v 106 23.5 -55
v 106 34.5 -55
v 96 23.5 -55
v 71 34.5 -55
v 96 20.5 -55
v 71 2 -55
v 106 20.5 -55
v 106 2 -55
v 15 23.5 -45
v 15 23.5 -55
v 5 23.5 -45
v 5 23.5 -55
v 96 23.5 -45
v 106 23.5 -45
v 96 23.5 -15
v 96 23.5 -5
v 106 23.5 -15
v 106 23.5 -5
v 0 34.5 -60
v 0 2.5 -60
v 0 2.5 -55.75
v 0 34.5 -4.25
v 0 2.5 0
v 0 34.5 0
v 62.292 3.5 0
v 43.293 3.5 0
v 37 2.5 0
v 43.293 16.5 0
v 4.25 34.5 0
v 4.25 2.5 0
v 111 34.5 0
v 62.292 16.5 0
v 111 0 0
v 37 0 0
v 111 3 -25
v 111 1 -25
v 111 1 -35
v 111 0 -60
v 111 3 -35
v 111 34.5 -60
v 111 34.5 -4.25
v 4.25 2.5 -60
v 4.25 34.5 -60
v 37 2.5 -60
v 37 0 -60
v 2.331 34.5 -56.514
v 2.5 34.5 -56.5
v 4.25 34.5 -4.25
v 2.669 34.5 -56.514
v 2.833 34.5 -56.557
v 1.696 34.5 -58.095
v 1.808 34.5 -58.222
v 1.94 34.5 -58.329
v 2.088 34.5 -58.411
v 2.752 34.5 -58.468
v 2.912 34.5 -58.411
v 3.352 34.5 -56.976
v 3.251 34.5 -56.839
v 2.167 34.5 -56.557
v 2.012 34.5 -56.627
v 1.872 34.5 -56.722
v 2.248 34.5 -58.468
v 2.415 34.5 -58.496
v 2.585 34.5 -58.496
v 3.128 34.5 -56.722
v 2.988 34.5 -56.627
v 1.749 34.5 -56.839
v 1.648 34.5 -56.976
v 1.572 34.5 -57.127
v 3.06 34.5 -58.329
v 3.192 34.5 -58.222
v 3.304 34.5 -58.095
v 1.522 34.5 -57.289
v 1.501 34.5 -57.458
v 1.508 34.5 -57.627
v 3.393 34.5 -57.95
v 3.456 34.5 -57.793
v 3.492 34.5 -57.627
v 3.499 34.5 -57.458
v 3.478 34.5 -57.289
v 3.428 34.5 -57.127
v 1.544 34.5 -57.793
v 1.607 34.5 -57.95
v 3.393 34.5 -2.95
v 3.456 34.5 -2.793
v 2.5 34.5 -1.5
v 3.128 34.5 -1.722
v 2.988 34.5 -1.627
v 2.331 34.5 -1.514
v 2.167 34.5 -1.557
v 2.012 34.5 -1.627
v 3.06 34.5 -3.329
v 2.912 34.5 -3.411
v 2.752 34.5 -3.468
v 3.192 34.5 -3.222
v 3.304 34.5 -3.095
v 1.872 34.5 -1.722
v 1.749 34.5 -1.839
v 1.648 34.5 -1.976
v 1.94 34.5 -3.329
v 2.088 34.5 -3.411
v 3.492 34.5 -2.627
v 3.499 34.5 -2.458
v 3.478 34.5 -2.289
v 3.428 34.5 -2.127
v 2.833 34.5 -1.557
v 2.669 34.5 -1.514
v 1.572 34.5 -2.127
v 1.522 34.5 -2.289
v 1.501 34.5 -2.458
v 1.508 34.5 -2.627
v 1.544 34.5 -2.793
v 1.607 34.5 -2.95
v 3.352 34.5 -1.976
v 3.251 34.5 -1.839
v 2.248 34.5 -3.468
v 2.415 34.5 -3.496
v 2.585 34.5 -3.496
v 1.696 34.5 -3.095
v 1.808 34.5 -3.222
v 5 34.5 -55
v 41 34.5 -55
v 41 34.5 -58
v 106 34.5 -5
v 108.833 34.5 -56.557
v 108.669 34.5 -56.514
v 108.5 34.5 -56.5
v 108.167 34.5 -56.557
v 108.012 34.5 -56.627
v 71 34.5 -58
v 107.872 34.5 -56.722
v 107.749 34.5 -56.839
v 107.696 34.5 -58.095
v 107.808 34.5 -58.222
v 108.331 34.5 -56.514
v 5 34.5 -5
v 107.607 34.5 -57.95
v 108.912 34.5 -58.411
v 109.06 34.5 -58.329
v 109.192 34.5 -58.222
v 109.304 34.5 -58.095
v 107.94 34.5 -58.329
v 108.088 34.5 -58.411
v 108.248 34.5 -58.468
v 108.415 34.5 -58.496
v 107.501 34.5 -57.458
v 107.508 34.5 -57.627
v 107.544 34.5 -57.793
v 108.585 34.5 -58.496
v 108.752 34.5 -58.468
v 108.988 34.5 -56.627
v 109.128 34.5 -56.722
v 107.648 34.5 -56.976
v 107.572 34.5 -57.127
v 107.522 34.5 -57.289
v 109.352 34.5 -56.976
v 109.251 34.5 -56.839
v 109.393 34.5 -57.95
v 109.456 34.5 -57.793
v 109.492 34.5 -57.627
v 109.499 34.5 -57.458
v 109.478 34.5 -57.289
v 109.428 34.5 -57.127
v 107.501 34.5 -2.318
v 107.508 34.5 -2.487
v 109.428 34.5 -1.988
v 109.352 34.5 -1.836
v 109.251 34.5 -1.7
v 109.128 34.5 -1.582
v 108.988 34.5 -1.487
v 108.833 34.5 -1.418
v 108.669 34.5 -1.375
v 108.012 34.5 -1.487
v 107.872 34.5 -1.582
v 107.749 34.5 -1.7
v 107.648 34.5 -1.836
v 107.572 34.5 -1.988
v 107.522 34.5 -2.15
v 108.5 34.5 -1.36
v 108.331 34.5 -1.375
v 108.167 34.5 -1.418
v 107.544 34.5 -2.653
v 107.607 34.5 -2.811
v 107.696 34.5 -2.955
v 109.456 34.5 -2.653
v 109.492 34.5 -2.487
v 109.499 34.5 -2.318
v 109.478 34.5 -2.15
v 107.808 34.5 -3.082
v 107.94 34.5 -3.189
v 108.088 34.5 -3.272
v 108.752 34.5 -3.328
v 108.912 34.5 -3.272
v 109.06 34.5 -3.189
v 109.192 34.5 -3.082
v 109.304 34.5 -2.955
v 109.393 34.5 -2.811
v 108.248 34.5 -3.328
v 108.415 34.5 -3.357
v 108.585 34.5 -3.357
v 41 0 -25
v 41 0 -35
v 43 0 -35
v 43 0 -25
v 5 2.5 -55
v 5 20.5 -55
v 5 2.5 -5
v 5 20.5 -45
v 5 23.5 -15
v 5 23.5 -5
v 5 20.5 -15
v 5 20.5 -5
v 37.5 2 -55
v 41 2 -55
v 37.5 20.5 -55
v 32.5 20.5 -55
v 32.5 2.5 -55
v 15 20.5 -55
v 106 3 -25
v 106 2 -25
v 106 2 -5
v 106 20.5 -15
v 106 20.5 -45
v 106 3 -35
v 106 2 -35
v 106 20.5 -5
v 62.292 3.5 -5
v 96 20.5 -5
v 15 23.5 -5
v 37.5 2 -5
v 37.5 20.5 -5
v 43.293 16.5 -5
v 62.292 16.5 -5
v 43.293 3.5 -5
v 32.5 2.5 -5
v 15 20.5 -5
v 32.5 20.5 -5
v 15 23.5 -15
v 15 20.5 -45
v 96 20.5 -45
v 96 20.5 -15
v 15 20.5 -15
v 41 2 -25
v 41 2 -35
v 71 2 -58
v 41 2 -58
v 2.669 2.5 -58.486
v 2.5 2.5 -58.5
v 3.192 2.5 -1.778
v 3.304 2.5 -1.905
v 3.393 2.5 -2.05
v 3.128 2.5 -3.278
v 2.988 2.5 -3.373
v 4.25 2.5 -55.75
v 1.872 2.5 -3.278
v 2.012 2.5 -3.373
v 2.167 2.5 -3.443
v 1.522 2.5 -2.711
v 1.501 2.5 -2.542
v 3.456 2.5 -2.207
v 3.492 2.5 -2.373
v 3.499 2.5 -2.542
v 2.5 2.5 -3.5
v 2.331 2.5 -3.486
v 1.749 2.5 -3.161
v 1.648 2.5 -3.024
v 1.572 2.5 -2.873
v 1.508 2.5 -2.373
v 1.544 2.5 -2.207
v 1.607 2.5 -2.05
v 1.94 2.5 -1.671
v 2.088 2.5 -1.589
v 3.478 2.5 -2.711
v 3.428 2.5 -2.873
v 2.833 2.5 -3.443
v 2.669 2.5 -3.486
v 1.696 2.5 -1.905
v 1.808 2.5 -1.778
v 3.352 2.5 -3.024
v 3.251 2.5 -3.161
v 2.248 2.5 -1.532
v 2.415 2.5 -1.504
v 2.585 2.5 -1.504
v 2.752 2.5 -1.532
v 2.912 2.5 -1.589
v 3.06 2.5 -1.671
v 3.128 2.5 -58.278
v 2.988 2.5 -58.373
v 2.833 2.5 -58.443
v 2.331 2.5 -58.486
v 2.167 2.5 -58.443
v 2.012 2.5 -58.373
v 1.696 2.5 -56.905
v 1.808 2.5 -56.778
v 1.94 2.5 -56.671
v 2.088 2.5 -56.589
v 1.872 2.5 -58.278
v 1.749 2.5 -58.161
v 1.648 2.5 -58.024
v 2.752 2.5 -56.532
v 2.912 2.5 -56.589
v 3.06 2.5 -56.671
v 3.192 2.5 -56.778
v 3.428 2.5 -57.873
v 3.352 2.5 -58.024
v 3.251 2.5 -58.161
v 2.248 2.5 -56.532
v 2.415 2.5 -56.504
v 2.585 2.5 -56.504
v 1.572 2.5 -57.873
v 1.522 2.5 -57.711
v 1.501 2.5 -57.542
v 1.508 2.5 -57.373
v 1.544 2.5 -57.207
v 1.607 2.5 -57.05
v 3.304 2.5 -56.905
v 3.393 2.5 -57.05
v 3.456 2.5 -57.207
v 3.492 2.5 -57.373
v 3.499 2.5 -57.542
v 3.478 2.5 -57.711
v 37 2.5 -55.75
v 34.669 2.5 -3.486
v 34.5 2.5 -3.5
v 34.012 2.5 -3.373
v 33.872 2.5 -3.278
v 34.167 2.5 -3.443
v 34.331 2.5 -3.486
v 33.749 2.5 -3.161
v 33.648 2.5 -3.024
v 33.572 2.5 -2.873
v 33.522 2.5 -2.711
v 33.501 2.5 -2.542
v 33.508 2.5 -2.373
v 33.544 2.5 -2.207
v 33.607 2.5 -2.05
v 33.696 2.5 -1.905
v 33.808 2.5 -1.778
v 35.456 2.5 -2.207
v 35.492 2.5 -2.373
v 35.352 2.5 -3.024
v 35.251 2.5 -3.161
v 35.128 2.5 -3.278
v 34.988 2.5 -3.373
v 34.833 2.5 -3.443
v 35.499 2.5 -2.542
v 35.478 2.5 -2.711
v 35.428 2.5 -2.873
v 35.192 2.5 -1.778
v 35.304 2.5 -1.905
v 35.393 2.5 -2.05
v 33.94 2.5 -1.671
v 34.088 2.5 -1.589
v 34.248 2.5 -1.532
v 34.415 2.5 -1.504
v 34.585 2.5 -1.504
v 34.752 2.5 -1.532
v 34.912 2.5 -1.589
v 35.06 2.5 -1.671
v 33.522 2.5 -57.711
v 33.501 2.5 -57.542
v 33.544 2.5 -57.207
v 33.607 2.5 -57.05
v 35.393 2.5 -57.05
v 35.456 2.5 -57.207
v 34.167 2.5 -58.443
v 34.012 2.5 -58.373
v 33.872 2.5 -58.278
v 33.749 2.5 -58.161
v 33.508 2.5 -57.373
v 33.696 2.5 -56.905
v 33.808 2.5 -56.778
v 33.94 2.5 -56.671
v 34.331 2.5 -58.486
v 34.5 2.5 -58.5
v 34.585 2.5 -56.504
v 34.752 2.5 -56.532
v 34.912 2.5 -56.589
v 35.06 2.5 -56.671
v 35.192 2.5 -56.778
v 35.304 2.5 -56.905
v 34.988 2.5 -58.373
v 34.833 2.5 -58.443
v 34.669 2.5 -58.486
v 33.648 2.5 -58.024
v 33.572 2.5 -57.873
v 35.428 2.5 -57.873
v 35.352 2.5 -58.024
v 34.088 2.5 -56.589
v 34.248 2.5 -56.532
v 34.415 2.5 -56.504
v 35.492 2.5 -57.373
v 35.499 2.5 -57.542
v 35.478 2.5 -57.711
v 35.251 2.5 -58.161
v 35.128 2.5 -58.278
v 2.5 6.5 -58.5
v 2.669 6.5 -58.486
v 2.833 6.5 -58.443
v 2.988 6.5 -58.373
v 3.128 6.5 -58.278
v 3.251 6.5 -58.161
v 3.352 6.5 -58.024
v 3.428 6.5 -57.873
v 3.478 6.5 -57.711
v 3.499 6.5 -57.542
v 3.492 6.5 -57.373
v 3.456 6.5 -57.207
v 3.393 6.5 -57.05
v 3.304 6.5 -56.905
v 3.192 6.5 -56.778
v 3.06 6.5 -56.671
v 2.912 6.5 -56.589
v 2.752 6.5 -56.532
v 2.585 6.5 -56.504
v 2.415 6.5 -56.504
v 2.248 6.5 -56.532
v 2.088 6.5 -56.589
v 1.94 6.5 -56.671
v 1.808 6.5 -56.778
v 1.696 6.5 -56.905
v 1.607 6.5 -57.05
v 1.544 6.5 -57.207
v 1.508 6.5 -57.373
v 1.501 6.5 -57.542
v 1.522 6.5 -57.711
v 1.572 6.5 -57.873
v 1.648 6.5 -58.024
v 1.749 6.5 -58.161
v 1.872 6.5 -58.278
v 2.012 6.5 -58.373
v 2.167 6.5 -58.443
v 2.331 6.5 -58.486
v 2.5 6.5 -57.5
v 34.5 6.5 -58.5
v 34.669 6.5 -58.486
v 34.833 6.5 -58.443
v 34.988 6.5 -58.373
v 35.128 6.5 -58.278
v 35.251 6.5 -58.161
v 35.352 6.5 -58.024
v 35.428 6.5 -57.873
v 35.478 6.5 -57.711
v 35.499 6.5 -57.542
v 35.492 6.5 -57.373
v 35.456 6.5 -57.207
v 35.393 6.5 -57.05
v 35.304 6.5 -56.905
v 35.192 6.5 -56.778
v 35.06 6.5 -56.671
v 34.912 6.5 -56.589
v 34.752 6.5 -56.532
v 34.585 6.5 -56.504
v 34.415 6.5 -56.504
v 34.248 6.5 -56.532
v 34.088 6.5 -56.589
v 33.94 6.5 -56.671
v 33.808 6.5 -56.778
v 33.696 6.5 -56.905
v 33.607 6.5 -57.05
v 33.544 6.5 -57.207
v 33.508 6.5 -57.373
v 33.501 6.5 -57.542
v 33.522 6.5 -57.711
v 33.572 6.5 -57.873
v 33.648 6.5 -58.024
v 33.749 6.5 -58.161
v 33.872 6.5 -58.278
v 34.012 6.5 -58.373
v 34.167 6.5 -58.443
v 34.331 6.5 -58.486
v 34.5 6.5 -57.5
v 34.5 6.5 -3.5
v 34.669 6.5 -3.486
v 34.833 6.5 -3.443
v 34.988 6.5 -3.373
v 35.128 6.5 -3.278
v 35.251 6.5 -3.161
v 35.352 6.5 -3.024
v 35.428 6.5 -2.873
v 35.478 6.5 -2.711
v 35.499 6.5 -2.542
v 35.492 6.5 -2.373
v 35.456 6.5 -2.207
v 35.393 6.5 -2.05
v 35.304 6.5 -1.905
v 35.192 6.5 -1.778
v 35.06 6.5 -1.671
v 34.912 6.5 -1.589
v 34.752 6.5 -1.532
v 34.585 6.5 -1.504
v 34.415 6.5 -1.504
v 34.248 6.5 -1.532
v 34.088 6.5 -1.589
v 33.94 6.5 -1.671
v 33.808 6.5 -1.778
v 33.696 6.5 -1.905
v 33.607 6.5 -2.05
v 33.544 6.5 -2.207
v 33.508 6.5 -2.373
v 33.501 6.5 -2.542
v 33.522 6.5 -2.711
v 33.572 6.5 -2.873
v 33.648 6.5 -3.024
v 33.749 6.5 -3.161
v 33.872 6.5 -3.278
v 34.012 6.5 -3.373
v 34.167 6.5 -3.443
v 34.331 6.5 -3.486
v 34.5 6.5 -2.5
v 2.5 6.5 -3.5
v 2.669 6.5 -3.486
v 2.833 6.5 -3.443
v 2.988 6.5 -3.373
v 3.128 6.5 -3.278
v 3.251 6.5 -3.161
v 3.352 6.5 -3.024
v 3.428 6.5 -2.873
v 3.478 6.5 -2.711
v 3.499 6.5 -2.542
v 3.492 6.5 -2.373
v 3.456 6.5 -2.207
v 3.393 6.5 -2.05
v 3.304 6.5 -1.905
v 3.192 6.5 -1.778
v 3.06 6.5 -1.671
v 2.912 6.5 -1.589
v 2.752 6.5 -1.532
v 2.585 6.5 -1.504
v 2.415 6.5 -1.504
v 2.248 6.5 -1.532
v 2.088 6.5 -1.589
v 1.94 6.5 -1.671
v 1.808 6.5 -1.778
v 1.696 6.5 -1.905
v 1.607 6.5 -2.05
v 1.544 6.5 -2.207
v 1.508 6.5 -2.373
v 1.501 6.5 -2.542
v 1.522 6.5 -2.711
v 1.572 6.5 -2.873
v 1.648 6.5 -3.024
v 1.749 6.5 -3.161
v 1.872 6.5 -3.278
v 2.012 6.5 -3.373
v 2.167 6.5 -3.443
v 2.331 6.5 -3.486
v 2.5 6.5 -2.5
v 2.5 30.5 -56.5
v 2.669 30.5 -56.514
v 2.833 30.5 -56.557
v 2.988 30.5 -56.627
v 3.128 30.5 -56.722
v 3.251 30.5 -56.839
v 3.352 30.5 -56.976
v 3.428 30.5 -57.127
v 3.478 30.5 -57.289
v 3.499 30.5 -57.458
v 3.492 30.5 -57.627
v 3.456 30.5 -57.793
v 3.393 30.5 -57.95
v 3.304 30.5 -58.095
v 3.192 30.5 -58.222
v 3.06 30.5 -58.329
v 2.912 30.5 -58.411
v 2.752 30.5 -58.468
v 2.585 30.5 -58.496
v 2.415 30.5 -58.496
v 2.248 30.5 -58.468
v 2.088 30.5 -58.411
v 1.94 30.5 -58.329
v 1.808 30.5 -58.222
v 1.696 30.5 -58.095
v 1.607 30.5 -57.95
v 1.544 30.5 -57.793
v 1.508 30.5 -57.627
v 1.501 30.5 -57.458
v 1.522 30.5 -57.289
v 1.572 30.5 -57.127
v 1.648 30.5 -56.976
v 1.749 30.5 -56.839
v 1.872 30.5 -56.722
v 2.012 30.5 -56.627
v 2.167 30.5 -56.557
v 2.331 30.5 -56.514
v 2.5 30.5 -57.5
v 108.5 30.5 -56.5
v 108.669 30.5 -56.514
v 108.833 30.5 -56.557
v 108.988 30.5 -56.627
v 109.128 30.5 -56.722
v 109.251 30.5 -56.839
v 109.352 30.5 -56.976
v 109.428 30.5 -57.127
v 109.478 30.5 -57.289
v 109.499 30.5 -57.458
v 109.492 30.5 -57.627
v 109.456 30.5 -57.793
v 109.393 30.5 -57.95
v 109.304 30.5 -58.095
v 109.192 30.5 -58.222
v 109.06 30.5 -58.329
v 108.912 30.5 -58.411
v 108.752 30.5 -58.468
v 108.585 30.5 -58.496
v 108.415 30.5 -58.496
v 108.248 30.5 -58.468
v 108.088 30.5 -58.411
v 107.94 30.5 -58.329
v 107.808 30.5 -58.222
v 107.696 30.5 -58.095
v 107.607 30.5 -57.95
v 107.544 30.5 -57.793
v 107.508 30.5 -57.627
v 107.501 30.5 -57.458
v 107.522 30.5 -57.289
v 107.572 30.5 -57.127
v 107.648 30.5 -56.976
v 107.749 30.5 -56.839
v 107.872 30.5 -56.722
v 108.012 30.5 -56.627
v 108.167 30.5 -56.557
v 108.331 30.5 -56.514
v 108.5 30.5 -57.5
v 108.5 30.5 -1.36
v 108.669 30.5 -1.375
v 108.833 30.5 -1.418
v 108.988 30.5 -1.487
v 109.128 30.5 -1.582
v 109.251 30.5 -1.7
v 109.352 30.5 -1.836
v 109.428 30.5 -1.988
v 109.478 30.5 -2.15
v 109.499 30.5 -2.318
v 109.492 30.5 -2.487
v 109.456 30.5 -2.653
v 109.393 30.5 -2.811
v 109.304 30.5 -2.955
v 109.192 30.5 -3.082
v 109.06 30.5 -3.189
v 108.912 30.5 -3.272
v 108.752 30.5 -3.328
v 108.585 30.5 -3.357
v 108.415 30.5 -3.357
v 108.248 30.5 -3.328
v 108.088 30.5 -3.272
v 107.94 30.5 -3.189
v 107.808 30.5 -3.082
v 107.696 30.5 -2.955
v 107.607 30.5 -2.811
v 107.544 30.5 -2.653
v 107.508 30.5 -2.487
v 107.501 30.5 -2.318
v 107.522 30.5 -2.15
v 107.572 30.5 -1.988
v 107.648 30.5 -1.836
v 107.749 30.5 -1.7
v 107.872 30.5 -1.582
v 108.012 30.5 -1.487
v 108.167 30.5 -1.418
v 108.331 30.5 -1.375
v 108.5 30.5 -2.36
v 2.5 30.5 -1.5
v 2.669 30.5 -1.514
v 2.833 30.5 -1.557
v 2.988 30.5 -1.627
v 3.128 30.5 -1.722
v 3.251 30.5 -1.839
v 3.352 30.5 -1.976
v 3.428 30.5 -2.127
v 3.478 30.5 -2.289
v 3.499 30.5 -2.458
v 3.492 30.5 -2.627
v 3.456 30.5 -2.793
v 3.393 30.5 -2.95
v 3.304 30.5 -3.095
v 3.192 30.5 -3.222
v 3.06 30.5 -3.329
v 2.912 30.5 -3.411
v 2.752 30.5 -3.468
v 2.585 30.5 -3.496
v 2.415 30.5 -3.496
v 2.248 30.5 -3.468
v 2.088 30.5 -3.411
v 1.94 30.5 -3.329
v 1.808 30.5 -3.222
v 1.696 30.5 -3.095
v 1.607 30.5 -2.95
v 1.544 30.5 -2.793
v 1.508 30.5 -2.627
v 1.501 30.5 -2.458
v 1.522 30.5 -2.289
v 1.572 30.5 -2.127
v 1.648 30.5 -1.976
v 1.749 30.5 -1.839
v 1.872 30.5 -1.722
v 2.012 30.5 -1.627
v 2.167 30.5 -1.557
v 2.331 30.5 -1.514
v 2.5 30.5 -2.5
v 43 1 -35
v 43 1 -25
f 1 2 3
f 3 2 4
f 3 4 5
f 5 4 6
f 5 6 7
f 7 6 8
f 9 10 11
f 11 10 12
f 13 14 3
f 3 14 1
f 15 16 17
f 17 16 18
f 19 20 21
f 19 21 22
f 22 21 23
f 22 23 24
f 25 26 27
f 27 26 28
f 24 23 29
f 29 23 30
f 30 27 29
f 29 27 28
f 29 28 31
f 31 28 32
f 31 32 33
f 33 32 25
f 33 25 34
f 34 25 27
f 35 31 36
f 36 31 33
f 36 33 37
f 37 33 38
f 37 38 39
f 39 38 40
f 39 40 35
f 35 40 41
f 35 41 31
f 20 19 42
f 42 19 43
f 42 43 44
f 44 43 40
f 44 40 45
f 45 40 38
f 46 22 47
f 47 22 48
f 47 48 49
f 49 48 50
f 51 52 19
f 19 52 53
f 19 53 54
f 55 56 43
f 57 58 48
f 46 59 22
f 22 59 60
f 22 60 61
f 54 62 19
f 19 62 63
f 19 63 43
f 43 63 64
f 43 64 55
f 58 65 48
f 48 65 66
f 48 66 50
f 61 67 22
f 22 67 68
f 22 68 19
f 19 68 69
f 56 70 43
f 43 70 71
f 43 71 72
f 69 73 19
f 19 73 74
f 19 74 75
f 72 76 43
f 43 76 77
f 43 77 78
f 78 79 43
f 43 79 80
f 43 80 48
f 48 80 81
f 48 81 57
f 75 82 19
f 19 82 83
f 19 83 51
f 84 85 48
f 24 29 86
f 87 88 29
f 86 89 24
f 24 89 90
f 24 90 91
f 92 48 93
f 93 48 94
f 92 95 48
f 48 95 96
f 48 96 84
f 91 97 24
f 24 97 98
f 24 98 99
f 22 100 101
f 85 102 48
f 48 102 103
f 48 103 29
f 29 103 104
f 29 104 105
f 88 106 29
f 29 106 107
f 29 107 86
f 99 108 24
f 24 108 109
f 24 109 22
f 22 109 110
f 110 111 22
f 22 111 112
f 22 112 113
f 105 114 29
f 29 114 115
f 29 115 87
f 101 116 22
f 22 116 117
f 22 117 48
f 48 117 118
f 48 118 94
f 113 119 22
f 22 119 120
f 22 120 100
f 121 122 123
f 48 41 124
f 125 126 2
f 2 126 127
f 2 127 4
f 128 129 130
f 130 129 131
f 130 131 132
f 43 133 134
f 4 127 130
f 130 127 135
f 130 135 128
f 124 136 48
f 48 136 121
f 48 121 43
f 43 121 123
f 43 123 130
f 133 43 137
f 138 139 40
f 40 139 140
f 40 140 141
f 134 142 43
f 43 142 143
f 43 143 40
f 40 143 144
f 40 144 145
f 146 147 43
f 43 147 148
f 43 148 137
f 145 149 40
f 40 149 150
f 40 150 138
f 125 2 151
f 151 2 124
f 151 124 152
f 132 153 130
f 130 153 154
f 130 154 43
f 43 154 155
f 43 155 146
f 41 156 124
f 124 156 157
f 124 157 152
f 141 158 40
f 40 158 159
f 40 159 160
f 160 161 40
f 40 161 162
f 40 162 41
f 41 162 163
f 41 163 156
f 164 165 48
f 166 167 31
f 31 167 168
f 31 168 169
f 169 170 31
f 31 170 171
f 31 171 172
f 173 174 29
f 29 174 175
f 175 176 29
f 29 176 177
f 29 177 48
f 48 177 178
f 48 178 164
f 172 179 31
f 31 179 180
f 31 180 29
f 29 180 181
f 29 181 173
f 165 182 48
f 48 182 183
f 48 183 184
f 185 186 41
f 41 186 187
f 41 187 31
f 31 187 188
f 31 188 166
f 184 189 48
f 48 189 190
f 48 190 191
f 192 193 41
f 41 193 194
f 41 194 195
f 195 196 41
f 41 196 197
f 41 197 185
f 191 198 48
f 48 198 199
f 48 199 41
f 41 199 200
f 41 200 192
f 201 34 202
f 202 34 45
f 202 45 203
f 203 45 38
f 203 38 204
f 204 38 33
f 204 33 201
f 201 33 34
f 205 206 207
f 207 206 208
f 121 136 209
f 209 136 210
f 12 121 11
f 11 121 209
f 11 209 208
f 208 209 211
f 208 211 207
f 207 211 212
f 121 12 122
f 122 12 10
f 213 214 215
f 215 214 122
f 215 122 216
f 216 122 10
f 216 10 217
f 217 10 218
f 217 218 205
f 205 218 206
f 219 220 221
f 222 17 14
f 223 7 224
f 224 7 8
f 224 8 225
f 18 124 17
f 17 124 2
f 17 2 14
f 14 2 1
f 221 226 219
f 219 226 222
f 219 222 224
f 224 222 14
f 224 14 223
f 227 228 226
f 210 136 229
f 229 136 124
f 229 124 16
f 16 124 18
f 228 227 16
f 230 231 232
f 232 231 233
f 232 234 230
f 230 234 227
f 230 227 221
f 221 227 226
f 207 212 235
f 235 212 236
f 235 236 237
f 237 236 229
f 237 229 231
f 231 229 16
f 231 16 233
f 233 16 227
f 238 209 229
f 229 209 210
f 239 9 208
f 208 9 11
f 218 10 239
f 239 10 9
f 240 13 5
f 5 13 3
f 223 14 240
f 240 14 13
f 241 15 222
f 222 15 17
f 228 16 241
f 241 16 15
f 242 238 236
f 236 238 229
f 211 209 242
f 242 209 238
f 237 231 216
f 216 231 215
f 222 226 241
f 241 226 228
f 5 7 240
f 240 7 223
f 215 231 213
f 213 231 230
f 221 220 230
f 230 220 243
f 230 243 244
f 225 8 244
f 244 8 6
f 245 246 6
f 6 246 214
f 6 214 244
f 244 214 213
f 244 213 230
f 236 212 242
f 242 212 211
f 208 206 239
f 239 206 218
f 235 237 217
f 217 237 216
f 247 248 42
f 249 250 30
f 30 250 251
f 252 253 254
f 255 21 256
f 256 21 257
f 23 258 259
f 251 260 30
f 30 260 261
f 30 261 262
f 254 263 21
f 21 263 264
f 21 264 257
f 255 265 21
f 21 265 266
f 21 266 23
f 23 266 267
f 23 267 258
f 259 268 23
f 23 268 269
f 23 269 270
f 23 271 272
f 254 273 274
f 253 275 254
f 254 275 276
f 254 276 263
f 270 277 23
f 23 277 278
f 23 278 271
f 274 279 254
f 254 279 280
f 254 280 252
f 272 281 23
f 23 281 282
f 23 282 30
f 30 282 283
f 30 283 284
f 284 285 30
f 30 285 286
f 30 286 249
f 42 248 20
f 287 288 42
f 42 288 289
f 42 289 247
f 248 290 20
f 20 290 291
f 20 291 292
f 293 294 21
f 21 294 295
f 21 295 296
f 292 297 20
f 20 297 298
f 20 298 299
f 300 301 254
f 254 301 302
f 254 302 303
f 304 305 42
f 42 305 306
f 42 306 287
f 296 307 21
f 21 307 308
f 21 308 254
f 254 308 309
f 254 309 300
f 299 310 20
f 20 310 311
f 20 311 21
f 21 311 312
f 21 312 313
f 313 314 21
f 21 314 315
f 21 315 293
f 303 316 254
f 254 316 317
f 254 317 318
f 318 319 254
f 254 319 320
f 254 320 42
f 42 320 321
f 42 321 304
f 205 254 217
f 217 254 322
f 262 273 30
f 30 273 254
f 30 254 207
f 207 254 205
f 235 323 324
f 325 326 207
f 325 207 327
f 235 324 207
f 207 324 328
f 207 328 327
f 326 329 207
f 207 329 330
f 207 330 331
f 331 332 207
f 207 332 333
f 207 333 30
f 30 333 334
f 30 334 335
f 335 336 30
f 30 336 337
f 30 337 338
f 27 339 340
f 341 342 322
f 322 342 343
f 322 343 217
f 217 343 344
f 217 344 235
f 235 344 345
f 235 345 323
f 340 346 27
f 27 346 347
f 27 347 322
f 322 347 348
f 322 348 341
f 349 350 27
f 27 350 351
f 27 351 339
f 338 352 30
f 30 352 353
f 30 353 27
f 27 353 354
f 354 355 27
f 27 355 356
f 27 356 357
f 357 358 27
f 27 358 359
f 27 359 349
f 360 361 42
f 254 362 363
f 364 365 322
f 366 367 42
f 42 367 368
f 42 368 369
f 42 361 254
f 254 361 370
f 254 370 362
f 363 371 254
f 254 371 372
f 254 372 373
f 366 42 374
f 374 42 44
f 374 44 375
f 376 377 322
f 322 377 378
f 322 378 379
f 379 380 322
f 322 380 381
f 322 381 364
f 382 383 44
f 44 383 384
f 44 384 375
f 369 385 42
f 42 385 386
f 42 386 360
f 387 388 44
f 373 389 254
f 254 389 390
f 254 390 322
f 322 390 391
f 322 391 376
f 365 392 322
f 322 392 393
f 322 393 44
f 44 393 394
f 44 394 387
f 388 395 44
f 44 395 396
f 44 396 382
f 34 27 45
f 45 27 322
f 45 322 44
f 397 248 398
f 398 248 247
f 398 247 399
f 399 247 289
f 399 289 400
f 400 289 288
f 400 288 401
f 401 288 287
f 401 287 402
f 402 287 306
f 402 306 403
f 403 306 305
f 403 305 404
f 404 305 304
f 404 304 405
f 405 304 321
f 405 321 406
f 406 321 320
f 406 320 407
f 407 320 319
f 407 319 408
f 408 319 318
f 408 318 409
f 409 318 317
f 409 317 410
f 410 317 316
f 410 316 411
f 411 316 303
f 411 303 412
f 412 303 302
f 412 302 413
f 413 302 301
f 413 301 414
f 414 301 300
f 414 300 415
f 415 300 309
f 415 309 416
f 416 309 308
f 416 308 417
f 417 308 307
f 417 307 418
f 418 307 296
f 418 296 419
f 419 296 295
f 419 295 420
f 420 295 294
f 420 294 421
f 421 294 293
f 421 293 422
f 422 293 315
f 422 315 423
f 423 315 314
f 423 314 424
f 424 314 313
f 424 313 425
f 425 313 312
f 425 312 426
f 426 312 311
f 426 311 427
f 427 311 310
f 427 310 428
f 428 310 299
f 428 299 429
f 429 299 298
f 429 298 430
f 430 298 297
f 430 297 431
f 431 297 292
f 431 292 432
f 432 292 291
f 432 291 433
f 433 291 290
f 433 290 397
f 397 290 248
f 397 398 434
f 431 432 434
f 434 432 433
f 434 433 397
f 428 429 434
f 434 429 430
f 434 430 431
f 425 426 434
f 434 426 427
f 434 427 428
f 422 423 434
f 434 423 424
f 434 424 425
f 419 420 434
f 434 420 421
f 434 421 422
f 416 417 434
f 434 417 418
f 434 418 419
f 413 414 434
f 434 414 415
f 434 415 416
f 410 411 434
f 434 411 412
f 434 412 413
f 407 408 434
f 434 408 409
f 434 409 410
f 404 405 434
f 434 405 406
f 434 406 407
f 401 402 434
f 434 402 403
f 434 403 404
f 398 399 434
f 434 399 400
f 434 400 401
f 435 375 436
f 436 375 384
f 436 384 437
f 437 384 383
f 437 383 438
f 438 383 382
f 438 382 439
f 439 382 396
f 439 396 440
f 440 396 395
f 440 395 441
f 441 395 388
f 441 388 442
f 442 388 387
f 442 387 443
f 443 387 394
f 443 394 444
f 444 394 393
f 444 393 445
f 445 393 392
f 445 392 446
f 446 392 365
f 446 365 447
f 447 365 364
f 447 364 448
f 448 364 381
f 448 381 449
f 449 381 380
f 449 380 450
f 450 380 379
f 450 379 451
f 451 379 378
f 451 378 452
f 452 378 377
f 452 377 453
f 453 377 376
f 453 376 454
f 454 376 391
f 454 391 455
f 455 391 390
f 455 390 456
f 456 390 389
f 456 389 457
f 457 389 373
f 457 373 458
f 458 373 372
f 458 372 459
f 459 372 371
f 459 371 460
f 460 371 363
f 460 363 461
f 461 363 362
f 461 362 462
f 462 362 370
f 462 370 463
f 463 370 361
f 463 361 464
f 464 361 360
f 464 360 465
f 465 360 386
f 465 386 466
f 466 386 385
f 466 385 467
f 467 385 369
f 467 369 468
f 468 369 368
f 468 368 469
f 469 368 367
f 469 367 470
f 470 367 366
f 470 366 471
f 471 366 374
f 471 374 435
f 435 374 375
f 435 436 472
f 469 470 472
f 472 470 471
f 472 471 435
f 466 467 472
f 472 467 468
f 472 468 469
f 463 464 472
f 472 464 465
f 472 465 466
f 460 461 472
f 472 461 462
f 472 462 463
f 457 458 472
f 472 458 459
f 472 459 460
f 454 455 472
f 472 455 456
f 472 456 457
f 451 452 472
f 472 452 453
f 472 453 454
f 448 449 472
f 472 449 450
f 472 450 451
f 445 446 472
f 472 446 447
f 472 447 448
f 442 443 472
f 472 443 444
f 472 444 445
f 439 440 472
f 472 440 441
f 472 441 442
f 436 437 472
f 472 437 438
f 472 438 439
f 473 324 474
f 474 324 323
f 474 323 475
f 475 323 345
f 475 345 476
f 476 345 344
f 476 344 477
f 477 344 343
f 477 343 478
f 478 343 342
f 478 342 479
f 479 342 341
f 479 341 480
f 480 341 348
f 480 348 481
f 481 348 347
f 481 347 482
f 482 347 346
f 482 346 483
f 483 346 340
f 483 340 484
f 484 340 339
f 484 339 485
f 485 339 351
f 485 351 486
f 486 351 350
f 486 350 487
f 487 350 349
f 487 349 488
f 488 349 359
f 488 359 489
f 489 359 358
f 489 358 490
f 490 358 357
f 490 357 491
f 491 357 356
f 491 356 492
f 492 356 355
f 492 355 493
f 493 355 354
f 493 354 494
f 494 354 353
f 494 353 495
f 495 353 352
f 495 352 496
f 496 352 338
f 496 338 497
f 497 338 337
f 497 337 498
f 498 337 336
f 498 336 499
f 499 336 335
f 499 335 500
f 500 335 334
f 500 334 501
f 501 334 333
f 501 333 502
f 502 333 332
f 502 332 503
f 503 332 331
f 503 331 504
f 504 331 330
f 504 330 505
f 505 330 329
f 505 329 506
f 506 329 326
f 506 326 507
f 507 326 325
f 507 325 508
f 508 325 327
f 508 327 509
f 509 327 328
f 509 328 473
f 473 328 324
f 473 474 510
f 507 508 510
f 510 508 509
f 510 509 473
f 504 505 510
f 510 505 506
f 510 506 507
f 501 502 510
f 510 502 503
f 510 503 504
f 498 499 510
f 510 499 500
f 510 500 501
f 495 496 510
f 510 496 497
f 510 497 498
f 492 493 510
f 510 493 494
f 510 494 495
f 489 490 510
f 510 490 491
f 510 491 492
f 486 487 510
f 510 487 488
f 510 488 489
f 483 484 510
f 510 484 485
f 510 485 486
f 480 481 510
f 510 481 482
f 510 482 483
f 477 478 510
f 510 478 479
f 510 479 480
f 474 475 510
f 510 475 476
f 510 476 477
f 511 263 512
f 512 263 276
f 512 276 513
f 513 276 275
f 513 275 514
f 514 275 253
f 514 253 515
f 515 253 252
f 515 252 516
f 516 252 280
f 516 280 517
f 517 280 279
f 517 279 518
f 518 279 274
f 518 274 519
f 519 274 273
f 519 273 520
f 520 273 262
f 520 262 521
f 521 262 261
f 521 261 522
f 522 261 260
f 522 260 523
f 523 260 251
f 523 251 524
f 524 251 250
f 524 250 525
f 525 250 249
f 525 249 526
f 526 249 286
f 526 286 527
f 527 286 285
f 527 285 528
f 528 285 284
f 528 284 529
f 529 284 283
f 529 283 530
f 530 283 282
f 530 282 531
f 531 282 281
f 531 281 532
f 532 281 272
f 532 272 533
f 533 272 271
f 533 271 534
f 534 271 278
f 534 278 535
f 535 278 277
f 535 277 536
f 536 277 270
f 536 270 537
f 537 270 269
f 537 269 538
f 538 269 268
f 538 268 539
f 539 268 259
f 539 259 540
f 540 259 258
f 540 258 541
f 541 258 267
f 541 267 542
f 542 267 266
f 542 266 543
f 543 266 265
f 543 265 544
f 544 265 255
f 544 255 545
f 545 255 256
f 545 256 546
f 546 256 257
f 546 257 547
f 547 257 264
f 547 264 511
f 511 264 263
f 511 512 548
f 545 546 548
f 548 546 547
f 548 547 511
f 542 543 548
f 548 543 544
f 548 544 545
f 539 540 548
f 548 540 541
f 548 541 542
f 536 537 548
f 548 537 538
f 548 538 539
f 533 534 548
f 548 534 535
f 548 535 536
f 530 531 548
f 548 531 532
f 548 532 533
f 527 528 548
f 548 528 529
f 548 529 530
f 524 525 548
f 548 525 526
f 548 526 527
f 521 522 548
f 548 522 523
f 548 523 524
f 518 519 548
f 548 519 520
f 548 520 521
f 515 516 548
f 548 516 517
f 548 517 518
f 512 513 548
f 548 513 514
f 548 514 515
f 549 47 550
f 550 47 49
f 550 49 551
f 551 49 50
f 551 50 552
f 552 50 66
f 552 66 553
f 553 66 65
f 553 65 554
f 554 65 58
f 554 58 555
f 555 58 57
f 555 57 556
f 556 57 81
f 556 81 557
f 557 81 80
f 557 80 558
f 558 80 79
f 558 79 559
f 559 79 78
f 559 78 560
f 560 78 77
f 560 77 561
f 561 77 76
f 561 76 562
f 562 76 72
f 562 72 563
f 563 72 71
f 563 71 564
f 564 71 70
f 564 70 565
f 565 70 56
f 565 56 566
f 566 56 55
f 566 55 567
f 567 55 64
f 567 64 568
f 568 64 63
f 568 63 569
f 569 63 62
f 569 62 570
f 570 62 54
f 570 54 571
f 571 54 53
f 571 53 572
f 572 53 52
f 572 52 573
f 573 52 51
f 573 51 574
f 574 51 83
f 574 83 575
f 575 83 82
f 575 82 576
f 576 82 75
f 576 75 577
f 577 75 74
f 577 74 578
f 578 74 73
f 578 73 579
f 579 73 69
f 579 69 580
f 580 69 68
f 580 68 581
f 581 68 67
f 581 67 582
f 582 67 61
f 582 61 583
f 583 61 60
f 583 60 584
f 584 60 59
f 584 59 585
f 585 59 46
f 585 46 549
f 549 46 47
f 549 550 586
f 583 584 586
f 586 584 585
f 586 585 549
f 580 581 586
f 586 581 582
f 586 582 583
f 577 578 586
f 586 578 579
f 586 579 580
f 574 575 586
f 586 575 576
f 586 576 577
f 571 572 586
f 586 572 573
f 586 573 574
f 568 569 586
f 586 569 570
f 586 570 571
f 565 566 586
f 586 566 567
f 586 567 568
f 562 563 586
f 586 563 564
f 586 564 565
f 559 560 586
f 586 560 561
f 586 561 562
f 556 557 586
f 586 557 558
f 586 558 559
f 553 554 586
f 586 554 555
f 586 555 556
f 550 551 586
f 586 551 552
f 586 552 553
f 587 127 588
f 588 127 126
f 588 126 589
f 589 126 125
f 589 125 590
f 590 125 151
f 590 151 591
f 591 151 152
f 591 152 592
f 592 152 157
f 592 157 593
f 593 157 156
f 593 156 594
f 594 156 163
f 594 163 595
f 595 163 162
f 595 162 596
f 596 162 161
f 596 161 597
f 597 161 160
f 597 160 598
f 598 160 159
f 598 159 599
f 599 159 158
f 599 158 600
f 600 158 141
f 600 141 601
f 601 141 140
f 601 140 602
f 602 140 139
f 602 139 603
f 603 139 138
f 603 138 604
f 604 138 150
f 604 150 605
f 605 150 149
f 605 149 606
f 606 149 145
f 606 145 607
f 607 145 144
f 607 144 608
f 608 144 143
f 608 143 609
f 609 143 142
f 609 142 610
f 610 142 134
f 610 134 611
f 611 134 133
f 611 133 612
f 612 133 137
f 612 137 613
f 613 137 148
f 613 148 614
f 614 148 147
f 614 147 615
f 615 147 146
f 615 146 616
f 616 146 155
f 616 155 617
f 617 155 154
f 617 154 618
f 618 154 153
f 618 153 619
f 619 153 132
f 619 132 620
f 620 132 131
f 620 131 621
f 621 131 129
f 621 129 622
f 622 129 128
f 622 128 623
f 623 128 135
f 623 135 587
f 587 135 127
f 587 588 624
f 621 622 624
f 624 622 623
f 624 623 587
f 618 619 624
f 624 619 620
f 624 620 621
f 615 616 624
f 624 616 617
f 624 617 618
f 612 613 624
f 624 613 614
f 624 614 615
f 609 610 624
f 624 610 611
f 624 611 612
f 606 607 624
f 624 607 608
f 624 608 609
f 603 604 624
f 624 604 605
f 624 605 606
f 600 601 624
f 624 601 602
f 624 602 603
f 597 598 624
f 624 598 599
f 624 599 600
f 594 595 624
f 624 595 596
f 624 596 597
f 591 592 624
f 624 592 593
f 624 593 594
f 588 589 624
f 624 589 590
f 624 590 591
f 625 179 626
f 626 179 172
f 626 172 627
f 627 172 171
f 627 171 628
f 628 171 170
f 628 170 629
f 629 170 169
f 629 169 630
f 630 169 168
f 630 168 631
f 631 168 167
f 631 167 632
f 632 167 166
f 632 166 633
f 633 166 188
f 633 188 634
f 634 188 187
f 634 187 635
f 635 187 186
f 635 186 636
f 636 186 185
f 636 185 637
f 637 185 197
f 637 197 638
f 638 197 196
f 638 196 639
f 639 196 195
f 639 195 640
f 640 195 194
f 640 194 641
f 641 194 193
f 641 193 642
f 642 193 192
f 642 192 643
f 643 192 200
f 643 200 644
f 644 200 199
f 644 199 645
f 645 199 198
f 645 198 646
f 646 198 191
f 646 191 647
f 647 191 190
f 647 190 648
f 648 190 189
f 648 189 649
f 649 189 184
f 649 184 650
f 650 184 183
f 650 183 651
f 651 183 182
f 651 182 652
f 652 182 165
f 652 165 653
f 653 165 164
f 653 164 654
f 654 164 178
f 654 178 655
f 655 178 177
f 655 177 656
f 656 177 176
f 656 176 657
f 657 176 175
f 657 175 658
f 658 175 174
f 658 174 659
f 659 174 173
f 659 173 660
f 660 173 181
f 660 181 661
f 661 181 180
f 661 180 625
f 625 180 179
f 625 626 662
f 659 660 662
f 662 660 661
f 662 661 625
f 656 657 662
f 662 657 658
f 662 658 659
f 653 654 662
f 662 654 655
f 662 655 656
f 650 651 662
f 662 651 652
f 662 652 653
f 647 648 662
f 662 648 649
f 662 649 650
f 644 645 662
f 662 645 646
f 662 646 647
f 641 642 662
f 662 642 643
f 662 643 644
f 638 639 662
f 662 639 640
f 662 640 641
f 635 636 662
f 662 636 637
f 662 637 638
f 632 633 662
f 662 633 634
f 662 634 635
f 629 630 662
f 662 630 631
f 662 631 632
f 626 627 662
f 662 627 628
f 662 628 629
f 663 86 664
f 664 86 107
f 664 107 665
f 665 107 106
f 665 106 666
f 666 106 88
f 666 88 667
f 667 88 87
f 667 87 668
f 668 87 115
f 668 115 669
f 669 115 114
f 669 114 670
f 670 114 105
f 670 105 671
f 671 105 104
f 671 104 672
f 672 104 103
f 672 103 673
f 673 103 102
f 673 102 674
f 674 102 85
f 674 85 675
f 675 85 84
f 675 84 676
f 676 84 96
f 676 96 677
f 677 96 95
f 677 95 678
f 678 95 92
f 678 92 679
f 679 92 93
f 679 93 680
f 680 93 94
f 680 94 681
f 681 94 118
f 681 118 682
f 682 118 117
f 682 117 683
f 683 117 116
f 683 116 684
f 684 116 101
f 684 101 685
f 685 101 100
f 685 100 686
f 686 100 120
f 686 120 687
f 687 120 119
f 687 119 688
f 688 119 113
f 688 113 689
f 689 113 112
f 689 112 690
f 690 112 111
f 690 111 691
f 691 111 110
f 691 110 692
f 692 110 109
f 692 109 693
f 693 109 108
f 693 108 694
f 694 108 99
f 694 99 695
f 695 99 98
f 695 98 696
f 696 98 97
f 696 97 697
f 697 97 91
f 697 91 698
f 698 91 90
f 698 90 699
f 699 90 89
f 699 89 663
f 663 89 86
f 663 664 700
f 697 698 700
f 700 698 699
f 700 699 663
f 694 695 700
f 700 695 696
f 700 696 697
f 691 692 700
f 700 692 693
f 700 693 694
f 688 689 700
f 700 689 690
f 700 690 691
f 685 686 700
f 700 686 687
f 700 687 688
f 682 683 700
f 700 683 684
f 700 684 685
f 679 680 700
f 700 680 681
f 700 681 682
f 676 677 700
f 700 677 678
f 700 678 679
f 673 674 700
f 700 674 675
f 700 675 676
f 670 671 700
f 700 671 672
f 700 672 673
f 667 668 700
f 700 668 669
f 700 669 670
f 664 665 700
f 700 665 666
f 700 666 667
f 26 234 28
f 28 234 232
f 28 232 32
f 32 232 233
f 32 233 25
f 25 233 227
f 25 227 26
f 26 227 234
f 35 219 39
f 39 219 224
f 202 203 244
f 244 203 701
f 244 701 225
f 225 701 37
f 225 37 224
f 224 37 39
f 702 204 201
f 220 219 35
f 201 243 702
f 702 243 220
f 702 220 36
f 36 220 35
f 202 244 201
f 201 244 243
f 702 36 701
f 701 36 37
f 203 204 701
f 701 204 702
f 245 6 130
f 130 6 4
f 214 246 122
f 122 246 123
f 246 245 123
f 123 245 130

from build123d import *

# Parameters (mm, degrees)
SKETCH1_W           = 111
SKETCH1_H           = 60
BOSS_EXTRUDE1_DEPTH = 34.5
SKETCH2_W           = 101
SKETCH2_H           = 50
CUT_EXTRUDE1_DEPTH  = 11
CUT_EXTRUDE3_DEPTH  = 14
CUT_EXTRUDE5_START  = -2
SKETCH5_W           = 27.5
SKETCH5_H           = 50
SKETCH5_W_2         = 68.5
CUT_EXTRUDE5_DEPTH  = 18.5
SKETCH6_W           = 37
SKETCH6_H           = 60
CUT_EXTRUDE6_DEPTH  = 2.5
SKETCH7_R           = 1
CUT_EXTRUDE7_DEPTH  = 4
SKETCH8_R           = 1
CUT_EXTRUDE8_DEPTH  = 4
SKETCH9_W           = 19
SKETCH9_H           = 13
CUT_EXTRUDE9_DEPTH  = 10
SKETCH10_W          = 10
SKETCH10_H          = 2
CUT_EXTRUDE10_DEPTH = 70
SKETCH11_W          = 2
SKETCH11_H          = 10
CUT_EXTRUDE11_DEPTH = 2
SKETCH12_W          = 30
SKETCH12_H          = 3
CUT_EXTRUDE12_DEPTH = 32.5


with BuildPart() as part:
    # Sketch1 → Boss-Extrude1 (new body)
    with BuildSketch(Plane(origin=(0, 0, 0), x_dir=(1, 0, 0), z_dir=(0, 1, 0))):
        with Locations((55.5, 30)):
            Rectangle(SKETCH1_W, SKETCH1_H)
    extrude(amount=BOSS_EXTRUDE1_DEPTH)

    # Sketch2 → Cut-Extrude1 (cut)
    with BuildSketch(Plane(origin=(0, 34.5, 0), x_dir=(1, 0, 0), z_dir=(0, 1, 0))):
        with Locations((55.5, 30)):
            Rectangle(SKETCH2_W, SKETCH2_H)
    extrude(amount=-CUT_EXTRUDE1_DEPTH, mode=Mode.SUBTRACT)

    # Sketch3 → Cut-Extrude3 (cut)
    with BuildSketch(Plane(origin=(0, 34.5, 0), x_dir=(1, 0, 0), z_dir=(0, 1, 0))):
        Polygon((5, 45), (15, 45), (15, 55), (96, 55), (96, 45), (106, 45), (106, 15), (96, 15), (96, 5), (15, 5), (15, 15), (5, 15), align=None)
    extrude(amount=-CUT_EXTRUDE3_DEPTH, mode=Mode.SUBTRACT)

    # Sketch5 → Cut-Extrude5 (cut)
    with BuildSketch(Plane.XZ.offset(CUT_EXTRUDE5_START)):
        with Locations((18.75, -30)):
            Rectangle(SKETCH5_W, SKETCH5_H)
        with Locations((71.75, -30)):
            Rectangle(SKETCH5_W_2, SKETCH5_H)
    extrude(amount=-CUT_EXTRUDE5_DEPTH, mode=Mode.SUBTRACT)

    # Sketch6 → Cut-Extrude6 (cut)
    with BuildSketch(Plane.XZ):
        with Locations((18.5, -30)):
            Rectangle(SKETCH6_W, SKETCH6_H)
    extrude(amount=-CUT_EXTRUDE6_DEPTH, mode=Mode.SUBTRACT)

    # Sketch7 → Cut-Extrude7 (cut)
    with BuildSketch(Plane(origin=(0, 2.5, 0), x_dir=(-1, 0, 0), z_dir=(0, -1, 0))):
        with Locations((-2.5, 57.5)):
            Circle(SKETCH7_R)
        with Locations((-34.5, 57.5)):
            Circle(SKETCH7_R)
        with Locations((-34.5, 2.5)):
            Circle(SKETCH7_R)
        with Locations((-2.5, 2.5)):
            Circle(SKETCH7_R)
    extrude(amount=-CUT_EXTRUDE7_DEPTH, mode=Mode.SUBTRACT)

    # Sketch8 → Cut-Extrude8 (cut)
    with BuildSketch(Plane(origin=(0, 34.5, 0), x_dir=(1, 0, 0), z_dir=(0, 1, 0))):
        with Locations((2.5, 57.5)):
            Circle(SKETCH8_R)
        with Locations((108.5, 57.5)):
            Circle(SKETCH8_R)
        with Locations((108.5, 2.360383006)):
            Circle(SKETCH8_R)
        with Locations((2.5, 2.5)):
            Circle(SKETCH8_R)
    extrude(amount=-CUT_EXTRUDE8_DEPTH, mode=Mode.SUBTRACT)

    # Sketch9 → Cut-Extrude9 (cut)
    with BuildSketch(Plane.XY):
        with Locations((52.792502494, 10)):
            Rectangle(SKETCH9_W, SKETCH9_H)
    extrude(amount=-CUT_EXTRUDE9_DEPTH, mode=Mode.SUBTRACT)

    # Sketch10 → Cut-Extrude10 (cut)
    with BuildSketch(Plane(origin=(111, 0, 0), x_dir=(0, 0, -1), z_dir=(1, 0, 0))):
        with Locations((30, 2)):
            Rectangle(SKETCH10_W, SKETCH10_H)
    extrude(amount=-CUT_EXTRUDE10_DEPTH, mode=Mode.SUBTRACT)

    # Sketch11 → Cut-Extrude11 (cut, through all)
    with BuildSketch(Plane(origin=(0, 1, 0), x_dir=(1, 0, 0), z_dir=(0, 1, 0))):
        with Locations((42, 30)):
            Rectangle(SKETCH11_W, SKETCH11_H)
    extrude(amount=-CUT_EXTRUDE11_DEPTH, mode=Mode.SUBTRACT)

    # Sketch12 → Cut-Extrude12 (cut)
    with BuildSketch(Plane(origin=(0, 34.5, 0), x_dir=(1, 0, 0), z_dir=(0, 1, 0))):
        with Locations((56, 56.5)):
            Rectangle(SKETCH12_W, SKETCH12_H)
    extrude(amount=-CUT_EXTRUDE12_DEPTH, mode=Mode.SUBTRACT)


solid = part.part
